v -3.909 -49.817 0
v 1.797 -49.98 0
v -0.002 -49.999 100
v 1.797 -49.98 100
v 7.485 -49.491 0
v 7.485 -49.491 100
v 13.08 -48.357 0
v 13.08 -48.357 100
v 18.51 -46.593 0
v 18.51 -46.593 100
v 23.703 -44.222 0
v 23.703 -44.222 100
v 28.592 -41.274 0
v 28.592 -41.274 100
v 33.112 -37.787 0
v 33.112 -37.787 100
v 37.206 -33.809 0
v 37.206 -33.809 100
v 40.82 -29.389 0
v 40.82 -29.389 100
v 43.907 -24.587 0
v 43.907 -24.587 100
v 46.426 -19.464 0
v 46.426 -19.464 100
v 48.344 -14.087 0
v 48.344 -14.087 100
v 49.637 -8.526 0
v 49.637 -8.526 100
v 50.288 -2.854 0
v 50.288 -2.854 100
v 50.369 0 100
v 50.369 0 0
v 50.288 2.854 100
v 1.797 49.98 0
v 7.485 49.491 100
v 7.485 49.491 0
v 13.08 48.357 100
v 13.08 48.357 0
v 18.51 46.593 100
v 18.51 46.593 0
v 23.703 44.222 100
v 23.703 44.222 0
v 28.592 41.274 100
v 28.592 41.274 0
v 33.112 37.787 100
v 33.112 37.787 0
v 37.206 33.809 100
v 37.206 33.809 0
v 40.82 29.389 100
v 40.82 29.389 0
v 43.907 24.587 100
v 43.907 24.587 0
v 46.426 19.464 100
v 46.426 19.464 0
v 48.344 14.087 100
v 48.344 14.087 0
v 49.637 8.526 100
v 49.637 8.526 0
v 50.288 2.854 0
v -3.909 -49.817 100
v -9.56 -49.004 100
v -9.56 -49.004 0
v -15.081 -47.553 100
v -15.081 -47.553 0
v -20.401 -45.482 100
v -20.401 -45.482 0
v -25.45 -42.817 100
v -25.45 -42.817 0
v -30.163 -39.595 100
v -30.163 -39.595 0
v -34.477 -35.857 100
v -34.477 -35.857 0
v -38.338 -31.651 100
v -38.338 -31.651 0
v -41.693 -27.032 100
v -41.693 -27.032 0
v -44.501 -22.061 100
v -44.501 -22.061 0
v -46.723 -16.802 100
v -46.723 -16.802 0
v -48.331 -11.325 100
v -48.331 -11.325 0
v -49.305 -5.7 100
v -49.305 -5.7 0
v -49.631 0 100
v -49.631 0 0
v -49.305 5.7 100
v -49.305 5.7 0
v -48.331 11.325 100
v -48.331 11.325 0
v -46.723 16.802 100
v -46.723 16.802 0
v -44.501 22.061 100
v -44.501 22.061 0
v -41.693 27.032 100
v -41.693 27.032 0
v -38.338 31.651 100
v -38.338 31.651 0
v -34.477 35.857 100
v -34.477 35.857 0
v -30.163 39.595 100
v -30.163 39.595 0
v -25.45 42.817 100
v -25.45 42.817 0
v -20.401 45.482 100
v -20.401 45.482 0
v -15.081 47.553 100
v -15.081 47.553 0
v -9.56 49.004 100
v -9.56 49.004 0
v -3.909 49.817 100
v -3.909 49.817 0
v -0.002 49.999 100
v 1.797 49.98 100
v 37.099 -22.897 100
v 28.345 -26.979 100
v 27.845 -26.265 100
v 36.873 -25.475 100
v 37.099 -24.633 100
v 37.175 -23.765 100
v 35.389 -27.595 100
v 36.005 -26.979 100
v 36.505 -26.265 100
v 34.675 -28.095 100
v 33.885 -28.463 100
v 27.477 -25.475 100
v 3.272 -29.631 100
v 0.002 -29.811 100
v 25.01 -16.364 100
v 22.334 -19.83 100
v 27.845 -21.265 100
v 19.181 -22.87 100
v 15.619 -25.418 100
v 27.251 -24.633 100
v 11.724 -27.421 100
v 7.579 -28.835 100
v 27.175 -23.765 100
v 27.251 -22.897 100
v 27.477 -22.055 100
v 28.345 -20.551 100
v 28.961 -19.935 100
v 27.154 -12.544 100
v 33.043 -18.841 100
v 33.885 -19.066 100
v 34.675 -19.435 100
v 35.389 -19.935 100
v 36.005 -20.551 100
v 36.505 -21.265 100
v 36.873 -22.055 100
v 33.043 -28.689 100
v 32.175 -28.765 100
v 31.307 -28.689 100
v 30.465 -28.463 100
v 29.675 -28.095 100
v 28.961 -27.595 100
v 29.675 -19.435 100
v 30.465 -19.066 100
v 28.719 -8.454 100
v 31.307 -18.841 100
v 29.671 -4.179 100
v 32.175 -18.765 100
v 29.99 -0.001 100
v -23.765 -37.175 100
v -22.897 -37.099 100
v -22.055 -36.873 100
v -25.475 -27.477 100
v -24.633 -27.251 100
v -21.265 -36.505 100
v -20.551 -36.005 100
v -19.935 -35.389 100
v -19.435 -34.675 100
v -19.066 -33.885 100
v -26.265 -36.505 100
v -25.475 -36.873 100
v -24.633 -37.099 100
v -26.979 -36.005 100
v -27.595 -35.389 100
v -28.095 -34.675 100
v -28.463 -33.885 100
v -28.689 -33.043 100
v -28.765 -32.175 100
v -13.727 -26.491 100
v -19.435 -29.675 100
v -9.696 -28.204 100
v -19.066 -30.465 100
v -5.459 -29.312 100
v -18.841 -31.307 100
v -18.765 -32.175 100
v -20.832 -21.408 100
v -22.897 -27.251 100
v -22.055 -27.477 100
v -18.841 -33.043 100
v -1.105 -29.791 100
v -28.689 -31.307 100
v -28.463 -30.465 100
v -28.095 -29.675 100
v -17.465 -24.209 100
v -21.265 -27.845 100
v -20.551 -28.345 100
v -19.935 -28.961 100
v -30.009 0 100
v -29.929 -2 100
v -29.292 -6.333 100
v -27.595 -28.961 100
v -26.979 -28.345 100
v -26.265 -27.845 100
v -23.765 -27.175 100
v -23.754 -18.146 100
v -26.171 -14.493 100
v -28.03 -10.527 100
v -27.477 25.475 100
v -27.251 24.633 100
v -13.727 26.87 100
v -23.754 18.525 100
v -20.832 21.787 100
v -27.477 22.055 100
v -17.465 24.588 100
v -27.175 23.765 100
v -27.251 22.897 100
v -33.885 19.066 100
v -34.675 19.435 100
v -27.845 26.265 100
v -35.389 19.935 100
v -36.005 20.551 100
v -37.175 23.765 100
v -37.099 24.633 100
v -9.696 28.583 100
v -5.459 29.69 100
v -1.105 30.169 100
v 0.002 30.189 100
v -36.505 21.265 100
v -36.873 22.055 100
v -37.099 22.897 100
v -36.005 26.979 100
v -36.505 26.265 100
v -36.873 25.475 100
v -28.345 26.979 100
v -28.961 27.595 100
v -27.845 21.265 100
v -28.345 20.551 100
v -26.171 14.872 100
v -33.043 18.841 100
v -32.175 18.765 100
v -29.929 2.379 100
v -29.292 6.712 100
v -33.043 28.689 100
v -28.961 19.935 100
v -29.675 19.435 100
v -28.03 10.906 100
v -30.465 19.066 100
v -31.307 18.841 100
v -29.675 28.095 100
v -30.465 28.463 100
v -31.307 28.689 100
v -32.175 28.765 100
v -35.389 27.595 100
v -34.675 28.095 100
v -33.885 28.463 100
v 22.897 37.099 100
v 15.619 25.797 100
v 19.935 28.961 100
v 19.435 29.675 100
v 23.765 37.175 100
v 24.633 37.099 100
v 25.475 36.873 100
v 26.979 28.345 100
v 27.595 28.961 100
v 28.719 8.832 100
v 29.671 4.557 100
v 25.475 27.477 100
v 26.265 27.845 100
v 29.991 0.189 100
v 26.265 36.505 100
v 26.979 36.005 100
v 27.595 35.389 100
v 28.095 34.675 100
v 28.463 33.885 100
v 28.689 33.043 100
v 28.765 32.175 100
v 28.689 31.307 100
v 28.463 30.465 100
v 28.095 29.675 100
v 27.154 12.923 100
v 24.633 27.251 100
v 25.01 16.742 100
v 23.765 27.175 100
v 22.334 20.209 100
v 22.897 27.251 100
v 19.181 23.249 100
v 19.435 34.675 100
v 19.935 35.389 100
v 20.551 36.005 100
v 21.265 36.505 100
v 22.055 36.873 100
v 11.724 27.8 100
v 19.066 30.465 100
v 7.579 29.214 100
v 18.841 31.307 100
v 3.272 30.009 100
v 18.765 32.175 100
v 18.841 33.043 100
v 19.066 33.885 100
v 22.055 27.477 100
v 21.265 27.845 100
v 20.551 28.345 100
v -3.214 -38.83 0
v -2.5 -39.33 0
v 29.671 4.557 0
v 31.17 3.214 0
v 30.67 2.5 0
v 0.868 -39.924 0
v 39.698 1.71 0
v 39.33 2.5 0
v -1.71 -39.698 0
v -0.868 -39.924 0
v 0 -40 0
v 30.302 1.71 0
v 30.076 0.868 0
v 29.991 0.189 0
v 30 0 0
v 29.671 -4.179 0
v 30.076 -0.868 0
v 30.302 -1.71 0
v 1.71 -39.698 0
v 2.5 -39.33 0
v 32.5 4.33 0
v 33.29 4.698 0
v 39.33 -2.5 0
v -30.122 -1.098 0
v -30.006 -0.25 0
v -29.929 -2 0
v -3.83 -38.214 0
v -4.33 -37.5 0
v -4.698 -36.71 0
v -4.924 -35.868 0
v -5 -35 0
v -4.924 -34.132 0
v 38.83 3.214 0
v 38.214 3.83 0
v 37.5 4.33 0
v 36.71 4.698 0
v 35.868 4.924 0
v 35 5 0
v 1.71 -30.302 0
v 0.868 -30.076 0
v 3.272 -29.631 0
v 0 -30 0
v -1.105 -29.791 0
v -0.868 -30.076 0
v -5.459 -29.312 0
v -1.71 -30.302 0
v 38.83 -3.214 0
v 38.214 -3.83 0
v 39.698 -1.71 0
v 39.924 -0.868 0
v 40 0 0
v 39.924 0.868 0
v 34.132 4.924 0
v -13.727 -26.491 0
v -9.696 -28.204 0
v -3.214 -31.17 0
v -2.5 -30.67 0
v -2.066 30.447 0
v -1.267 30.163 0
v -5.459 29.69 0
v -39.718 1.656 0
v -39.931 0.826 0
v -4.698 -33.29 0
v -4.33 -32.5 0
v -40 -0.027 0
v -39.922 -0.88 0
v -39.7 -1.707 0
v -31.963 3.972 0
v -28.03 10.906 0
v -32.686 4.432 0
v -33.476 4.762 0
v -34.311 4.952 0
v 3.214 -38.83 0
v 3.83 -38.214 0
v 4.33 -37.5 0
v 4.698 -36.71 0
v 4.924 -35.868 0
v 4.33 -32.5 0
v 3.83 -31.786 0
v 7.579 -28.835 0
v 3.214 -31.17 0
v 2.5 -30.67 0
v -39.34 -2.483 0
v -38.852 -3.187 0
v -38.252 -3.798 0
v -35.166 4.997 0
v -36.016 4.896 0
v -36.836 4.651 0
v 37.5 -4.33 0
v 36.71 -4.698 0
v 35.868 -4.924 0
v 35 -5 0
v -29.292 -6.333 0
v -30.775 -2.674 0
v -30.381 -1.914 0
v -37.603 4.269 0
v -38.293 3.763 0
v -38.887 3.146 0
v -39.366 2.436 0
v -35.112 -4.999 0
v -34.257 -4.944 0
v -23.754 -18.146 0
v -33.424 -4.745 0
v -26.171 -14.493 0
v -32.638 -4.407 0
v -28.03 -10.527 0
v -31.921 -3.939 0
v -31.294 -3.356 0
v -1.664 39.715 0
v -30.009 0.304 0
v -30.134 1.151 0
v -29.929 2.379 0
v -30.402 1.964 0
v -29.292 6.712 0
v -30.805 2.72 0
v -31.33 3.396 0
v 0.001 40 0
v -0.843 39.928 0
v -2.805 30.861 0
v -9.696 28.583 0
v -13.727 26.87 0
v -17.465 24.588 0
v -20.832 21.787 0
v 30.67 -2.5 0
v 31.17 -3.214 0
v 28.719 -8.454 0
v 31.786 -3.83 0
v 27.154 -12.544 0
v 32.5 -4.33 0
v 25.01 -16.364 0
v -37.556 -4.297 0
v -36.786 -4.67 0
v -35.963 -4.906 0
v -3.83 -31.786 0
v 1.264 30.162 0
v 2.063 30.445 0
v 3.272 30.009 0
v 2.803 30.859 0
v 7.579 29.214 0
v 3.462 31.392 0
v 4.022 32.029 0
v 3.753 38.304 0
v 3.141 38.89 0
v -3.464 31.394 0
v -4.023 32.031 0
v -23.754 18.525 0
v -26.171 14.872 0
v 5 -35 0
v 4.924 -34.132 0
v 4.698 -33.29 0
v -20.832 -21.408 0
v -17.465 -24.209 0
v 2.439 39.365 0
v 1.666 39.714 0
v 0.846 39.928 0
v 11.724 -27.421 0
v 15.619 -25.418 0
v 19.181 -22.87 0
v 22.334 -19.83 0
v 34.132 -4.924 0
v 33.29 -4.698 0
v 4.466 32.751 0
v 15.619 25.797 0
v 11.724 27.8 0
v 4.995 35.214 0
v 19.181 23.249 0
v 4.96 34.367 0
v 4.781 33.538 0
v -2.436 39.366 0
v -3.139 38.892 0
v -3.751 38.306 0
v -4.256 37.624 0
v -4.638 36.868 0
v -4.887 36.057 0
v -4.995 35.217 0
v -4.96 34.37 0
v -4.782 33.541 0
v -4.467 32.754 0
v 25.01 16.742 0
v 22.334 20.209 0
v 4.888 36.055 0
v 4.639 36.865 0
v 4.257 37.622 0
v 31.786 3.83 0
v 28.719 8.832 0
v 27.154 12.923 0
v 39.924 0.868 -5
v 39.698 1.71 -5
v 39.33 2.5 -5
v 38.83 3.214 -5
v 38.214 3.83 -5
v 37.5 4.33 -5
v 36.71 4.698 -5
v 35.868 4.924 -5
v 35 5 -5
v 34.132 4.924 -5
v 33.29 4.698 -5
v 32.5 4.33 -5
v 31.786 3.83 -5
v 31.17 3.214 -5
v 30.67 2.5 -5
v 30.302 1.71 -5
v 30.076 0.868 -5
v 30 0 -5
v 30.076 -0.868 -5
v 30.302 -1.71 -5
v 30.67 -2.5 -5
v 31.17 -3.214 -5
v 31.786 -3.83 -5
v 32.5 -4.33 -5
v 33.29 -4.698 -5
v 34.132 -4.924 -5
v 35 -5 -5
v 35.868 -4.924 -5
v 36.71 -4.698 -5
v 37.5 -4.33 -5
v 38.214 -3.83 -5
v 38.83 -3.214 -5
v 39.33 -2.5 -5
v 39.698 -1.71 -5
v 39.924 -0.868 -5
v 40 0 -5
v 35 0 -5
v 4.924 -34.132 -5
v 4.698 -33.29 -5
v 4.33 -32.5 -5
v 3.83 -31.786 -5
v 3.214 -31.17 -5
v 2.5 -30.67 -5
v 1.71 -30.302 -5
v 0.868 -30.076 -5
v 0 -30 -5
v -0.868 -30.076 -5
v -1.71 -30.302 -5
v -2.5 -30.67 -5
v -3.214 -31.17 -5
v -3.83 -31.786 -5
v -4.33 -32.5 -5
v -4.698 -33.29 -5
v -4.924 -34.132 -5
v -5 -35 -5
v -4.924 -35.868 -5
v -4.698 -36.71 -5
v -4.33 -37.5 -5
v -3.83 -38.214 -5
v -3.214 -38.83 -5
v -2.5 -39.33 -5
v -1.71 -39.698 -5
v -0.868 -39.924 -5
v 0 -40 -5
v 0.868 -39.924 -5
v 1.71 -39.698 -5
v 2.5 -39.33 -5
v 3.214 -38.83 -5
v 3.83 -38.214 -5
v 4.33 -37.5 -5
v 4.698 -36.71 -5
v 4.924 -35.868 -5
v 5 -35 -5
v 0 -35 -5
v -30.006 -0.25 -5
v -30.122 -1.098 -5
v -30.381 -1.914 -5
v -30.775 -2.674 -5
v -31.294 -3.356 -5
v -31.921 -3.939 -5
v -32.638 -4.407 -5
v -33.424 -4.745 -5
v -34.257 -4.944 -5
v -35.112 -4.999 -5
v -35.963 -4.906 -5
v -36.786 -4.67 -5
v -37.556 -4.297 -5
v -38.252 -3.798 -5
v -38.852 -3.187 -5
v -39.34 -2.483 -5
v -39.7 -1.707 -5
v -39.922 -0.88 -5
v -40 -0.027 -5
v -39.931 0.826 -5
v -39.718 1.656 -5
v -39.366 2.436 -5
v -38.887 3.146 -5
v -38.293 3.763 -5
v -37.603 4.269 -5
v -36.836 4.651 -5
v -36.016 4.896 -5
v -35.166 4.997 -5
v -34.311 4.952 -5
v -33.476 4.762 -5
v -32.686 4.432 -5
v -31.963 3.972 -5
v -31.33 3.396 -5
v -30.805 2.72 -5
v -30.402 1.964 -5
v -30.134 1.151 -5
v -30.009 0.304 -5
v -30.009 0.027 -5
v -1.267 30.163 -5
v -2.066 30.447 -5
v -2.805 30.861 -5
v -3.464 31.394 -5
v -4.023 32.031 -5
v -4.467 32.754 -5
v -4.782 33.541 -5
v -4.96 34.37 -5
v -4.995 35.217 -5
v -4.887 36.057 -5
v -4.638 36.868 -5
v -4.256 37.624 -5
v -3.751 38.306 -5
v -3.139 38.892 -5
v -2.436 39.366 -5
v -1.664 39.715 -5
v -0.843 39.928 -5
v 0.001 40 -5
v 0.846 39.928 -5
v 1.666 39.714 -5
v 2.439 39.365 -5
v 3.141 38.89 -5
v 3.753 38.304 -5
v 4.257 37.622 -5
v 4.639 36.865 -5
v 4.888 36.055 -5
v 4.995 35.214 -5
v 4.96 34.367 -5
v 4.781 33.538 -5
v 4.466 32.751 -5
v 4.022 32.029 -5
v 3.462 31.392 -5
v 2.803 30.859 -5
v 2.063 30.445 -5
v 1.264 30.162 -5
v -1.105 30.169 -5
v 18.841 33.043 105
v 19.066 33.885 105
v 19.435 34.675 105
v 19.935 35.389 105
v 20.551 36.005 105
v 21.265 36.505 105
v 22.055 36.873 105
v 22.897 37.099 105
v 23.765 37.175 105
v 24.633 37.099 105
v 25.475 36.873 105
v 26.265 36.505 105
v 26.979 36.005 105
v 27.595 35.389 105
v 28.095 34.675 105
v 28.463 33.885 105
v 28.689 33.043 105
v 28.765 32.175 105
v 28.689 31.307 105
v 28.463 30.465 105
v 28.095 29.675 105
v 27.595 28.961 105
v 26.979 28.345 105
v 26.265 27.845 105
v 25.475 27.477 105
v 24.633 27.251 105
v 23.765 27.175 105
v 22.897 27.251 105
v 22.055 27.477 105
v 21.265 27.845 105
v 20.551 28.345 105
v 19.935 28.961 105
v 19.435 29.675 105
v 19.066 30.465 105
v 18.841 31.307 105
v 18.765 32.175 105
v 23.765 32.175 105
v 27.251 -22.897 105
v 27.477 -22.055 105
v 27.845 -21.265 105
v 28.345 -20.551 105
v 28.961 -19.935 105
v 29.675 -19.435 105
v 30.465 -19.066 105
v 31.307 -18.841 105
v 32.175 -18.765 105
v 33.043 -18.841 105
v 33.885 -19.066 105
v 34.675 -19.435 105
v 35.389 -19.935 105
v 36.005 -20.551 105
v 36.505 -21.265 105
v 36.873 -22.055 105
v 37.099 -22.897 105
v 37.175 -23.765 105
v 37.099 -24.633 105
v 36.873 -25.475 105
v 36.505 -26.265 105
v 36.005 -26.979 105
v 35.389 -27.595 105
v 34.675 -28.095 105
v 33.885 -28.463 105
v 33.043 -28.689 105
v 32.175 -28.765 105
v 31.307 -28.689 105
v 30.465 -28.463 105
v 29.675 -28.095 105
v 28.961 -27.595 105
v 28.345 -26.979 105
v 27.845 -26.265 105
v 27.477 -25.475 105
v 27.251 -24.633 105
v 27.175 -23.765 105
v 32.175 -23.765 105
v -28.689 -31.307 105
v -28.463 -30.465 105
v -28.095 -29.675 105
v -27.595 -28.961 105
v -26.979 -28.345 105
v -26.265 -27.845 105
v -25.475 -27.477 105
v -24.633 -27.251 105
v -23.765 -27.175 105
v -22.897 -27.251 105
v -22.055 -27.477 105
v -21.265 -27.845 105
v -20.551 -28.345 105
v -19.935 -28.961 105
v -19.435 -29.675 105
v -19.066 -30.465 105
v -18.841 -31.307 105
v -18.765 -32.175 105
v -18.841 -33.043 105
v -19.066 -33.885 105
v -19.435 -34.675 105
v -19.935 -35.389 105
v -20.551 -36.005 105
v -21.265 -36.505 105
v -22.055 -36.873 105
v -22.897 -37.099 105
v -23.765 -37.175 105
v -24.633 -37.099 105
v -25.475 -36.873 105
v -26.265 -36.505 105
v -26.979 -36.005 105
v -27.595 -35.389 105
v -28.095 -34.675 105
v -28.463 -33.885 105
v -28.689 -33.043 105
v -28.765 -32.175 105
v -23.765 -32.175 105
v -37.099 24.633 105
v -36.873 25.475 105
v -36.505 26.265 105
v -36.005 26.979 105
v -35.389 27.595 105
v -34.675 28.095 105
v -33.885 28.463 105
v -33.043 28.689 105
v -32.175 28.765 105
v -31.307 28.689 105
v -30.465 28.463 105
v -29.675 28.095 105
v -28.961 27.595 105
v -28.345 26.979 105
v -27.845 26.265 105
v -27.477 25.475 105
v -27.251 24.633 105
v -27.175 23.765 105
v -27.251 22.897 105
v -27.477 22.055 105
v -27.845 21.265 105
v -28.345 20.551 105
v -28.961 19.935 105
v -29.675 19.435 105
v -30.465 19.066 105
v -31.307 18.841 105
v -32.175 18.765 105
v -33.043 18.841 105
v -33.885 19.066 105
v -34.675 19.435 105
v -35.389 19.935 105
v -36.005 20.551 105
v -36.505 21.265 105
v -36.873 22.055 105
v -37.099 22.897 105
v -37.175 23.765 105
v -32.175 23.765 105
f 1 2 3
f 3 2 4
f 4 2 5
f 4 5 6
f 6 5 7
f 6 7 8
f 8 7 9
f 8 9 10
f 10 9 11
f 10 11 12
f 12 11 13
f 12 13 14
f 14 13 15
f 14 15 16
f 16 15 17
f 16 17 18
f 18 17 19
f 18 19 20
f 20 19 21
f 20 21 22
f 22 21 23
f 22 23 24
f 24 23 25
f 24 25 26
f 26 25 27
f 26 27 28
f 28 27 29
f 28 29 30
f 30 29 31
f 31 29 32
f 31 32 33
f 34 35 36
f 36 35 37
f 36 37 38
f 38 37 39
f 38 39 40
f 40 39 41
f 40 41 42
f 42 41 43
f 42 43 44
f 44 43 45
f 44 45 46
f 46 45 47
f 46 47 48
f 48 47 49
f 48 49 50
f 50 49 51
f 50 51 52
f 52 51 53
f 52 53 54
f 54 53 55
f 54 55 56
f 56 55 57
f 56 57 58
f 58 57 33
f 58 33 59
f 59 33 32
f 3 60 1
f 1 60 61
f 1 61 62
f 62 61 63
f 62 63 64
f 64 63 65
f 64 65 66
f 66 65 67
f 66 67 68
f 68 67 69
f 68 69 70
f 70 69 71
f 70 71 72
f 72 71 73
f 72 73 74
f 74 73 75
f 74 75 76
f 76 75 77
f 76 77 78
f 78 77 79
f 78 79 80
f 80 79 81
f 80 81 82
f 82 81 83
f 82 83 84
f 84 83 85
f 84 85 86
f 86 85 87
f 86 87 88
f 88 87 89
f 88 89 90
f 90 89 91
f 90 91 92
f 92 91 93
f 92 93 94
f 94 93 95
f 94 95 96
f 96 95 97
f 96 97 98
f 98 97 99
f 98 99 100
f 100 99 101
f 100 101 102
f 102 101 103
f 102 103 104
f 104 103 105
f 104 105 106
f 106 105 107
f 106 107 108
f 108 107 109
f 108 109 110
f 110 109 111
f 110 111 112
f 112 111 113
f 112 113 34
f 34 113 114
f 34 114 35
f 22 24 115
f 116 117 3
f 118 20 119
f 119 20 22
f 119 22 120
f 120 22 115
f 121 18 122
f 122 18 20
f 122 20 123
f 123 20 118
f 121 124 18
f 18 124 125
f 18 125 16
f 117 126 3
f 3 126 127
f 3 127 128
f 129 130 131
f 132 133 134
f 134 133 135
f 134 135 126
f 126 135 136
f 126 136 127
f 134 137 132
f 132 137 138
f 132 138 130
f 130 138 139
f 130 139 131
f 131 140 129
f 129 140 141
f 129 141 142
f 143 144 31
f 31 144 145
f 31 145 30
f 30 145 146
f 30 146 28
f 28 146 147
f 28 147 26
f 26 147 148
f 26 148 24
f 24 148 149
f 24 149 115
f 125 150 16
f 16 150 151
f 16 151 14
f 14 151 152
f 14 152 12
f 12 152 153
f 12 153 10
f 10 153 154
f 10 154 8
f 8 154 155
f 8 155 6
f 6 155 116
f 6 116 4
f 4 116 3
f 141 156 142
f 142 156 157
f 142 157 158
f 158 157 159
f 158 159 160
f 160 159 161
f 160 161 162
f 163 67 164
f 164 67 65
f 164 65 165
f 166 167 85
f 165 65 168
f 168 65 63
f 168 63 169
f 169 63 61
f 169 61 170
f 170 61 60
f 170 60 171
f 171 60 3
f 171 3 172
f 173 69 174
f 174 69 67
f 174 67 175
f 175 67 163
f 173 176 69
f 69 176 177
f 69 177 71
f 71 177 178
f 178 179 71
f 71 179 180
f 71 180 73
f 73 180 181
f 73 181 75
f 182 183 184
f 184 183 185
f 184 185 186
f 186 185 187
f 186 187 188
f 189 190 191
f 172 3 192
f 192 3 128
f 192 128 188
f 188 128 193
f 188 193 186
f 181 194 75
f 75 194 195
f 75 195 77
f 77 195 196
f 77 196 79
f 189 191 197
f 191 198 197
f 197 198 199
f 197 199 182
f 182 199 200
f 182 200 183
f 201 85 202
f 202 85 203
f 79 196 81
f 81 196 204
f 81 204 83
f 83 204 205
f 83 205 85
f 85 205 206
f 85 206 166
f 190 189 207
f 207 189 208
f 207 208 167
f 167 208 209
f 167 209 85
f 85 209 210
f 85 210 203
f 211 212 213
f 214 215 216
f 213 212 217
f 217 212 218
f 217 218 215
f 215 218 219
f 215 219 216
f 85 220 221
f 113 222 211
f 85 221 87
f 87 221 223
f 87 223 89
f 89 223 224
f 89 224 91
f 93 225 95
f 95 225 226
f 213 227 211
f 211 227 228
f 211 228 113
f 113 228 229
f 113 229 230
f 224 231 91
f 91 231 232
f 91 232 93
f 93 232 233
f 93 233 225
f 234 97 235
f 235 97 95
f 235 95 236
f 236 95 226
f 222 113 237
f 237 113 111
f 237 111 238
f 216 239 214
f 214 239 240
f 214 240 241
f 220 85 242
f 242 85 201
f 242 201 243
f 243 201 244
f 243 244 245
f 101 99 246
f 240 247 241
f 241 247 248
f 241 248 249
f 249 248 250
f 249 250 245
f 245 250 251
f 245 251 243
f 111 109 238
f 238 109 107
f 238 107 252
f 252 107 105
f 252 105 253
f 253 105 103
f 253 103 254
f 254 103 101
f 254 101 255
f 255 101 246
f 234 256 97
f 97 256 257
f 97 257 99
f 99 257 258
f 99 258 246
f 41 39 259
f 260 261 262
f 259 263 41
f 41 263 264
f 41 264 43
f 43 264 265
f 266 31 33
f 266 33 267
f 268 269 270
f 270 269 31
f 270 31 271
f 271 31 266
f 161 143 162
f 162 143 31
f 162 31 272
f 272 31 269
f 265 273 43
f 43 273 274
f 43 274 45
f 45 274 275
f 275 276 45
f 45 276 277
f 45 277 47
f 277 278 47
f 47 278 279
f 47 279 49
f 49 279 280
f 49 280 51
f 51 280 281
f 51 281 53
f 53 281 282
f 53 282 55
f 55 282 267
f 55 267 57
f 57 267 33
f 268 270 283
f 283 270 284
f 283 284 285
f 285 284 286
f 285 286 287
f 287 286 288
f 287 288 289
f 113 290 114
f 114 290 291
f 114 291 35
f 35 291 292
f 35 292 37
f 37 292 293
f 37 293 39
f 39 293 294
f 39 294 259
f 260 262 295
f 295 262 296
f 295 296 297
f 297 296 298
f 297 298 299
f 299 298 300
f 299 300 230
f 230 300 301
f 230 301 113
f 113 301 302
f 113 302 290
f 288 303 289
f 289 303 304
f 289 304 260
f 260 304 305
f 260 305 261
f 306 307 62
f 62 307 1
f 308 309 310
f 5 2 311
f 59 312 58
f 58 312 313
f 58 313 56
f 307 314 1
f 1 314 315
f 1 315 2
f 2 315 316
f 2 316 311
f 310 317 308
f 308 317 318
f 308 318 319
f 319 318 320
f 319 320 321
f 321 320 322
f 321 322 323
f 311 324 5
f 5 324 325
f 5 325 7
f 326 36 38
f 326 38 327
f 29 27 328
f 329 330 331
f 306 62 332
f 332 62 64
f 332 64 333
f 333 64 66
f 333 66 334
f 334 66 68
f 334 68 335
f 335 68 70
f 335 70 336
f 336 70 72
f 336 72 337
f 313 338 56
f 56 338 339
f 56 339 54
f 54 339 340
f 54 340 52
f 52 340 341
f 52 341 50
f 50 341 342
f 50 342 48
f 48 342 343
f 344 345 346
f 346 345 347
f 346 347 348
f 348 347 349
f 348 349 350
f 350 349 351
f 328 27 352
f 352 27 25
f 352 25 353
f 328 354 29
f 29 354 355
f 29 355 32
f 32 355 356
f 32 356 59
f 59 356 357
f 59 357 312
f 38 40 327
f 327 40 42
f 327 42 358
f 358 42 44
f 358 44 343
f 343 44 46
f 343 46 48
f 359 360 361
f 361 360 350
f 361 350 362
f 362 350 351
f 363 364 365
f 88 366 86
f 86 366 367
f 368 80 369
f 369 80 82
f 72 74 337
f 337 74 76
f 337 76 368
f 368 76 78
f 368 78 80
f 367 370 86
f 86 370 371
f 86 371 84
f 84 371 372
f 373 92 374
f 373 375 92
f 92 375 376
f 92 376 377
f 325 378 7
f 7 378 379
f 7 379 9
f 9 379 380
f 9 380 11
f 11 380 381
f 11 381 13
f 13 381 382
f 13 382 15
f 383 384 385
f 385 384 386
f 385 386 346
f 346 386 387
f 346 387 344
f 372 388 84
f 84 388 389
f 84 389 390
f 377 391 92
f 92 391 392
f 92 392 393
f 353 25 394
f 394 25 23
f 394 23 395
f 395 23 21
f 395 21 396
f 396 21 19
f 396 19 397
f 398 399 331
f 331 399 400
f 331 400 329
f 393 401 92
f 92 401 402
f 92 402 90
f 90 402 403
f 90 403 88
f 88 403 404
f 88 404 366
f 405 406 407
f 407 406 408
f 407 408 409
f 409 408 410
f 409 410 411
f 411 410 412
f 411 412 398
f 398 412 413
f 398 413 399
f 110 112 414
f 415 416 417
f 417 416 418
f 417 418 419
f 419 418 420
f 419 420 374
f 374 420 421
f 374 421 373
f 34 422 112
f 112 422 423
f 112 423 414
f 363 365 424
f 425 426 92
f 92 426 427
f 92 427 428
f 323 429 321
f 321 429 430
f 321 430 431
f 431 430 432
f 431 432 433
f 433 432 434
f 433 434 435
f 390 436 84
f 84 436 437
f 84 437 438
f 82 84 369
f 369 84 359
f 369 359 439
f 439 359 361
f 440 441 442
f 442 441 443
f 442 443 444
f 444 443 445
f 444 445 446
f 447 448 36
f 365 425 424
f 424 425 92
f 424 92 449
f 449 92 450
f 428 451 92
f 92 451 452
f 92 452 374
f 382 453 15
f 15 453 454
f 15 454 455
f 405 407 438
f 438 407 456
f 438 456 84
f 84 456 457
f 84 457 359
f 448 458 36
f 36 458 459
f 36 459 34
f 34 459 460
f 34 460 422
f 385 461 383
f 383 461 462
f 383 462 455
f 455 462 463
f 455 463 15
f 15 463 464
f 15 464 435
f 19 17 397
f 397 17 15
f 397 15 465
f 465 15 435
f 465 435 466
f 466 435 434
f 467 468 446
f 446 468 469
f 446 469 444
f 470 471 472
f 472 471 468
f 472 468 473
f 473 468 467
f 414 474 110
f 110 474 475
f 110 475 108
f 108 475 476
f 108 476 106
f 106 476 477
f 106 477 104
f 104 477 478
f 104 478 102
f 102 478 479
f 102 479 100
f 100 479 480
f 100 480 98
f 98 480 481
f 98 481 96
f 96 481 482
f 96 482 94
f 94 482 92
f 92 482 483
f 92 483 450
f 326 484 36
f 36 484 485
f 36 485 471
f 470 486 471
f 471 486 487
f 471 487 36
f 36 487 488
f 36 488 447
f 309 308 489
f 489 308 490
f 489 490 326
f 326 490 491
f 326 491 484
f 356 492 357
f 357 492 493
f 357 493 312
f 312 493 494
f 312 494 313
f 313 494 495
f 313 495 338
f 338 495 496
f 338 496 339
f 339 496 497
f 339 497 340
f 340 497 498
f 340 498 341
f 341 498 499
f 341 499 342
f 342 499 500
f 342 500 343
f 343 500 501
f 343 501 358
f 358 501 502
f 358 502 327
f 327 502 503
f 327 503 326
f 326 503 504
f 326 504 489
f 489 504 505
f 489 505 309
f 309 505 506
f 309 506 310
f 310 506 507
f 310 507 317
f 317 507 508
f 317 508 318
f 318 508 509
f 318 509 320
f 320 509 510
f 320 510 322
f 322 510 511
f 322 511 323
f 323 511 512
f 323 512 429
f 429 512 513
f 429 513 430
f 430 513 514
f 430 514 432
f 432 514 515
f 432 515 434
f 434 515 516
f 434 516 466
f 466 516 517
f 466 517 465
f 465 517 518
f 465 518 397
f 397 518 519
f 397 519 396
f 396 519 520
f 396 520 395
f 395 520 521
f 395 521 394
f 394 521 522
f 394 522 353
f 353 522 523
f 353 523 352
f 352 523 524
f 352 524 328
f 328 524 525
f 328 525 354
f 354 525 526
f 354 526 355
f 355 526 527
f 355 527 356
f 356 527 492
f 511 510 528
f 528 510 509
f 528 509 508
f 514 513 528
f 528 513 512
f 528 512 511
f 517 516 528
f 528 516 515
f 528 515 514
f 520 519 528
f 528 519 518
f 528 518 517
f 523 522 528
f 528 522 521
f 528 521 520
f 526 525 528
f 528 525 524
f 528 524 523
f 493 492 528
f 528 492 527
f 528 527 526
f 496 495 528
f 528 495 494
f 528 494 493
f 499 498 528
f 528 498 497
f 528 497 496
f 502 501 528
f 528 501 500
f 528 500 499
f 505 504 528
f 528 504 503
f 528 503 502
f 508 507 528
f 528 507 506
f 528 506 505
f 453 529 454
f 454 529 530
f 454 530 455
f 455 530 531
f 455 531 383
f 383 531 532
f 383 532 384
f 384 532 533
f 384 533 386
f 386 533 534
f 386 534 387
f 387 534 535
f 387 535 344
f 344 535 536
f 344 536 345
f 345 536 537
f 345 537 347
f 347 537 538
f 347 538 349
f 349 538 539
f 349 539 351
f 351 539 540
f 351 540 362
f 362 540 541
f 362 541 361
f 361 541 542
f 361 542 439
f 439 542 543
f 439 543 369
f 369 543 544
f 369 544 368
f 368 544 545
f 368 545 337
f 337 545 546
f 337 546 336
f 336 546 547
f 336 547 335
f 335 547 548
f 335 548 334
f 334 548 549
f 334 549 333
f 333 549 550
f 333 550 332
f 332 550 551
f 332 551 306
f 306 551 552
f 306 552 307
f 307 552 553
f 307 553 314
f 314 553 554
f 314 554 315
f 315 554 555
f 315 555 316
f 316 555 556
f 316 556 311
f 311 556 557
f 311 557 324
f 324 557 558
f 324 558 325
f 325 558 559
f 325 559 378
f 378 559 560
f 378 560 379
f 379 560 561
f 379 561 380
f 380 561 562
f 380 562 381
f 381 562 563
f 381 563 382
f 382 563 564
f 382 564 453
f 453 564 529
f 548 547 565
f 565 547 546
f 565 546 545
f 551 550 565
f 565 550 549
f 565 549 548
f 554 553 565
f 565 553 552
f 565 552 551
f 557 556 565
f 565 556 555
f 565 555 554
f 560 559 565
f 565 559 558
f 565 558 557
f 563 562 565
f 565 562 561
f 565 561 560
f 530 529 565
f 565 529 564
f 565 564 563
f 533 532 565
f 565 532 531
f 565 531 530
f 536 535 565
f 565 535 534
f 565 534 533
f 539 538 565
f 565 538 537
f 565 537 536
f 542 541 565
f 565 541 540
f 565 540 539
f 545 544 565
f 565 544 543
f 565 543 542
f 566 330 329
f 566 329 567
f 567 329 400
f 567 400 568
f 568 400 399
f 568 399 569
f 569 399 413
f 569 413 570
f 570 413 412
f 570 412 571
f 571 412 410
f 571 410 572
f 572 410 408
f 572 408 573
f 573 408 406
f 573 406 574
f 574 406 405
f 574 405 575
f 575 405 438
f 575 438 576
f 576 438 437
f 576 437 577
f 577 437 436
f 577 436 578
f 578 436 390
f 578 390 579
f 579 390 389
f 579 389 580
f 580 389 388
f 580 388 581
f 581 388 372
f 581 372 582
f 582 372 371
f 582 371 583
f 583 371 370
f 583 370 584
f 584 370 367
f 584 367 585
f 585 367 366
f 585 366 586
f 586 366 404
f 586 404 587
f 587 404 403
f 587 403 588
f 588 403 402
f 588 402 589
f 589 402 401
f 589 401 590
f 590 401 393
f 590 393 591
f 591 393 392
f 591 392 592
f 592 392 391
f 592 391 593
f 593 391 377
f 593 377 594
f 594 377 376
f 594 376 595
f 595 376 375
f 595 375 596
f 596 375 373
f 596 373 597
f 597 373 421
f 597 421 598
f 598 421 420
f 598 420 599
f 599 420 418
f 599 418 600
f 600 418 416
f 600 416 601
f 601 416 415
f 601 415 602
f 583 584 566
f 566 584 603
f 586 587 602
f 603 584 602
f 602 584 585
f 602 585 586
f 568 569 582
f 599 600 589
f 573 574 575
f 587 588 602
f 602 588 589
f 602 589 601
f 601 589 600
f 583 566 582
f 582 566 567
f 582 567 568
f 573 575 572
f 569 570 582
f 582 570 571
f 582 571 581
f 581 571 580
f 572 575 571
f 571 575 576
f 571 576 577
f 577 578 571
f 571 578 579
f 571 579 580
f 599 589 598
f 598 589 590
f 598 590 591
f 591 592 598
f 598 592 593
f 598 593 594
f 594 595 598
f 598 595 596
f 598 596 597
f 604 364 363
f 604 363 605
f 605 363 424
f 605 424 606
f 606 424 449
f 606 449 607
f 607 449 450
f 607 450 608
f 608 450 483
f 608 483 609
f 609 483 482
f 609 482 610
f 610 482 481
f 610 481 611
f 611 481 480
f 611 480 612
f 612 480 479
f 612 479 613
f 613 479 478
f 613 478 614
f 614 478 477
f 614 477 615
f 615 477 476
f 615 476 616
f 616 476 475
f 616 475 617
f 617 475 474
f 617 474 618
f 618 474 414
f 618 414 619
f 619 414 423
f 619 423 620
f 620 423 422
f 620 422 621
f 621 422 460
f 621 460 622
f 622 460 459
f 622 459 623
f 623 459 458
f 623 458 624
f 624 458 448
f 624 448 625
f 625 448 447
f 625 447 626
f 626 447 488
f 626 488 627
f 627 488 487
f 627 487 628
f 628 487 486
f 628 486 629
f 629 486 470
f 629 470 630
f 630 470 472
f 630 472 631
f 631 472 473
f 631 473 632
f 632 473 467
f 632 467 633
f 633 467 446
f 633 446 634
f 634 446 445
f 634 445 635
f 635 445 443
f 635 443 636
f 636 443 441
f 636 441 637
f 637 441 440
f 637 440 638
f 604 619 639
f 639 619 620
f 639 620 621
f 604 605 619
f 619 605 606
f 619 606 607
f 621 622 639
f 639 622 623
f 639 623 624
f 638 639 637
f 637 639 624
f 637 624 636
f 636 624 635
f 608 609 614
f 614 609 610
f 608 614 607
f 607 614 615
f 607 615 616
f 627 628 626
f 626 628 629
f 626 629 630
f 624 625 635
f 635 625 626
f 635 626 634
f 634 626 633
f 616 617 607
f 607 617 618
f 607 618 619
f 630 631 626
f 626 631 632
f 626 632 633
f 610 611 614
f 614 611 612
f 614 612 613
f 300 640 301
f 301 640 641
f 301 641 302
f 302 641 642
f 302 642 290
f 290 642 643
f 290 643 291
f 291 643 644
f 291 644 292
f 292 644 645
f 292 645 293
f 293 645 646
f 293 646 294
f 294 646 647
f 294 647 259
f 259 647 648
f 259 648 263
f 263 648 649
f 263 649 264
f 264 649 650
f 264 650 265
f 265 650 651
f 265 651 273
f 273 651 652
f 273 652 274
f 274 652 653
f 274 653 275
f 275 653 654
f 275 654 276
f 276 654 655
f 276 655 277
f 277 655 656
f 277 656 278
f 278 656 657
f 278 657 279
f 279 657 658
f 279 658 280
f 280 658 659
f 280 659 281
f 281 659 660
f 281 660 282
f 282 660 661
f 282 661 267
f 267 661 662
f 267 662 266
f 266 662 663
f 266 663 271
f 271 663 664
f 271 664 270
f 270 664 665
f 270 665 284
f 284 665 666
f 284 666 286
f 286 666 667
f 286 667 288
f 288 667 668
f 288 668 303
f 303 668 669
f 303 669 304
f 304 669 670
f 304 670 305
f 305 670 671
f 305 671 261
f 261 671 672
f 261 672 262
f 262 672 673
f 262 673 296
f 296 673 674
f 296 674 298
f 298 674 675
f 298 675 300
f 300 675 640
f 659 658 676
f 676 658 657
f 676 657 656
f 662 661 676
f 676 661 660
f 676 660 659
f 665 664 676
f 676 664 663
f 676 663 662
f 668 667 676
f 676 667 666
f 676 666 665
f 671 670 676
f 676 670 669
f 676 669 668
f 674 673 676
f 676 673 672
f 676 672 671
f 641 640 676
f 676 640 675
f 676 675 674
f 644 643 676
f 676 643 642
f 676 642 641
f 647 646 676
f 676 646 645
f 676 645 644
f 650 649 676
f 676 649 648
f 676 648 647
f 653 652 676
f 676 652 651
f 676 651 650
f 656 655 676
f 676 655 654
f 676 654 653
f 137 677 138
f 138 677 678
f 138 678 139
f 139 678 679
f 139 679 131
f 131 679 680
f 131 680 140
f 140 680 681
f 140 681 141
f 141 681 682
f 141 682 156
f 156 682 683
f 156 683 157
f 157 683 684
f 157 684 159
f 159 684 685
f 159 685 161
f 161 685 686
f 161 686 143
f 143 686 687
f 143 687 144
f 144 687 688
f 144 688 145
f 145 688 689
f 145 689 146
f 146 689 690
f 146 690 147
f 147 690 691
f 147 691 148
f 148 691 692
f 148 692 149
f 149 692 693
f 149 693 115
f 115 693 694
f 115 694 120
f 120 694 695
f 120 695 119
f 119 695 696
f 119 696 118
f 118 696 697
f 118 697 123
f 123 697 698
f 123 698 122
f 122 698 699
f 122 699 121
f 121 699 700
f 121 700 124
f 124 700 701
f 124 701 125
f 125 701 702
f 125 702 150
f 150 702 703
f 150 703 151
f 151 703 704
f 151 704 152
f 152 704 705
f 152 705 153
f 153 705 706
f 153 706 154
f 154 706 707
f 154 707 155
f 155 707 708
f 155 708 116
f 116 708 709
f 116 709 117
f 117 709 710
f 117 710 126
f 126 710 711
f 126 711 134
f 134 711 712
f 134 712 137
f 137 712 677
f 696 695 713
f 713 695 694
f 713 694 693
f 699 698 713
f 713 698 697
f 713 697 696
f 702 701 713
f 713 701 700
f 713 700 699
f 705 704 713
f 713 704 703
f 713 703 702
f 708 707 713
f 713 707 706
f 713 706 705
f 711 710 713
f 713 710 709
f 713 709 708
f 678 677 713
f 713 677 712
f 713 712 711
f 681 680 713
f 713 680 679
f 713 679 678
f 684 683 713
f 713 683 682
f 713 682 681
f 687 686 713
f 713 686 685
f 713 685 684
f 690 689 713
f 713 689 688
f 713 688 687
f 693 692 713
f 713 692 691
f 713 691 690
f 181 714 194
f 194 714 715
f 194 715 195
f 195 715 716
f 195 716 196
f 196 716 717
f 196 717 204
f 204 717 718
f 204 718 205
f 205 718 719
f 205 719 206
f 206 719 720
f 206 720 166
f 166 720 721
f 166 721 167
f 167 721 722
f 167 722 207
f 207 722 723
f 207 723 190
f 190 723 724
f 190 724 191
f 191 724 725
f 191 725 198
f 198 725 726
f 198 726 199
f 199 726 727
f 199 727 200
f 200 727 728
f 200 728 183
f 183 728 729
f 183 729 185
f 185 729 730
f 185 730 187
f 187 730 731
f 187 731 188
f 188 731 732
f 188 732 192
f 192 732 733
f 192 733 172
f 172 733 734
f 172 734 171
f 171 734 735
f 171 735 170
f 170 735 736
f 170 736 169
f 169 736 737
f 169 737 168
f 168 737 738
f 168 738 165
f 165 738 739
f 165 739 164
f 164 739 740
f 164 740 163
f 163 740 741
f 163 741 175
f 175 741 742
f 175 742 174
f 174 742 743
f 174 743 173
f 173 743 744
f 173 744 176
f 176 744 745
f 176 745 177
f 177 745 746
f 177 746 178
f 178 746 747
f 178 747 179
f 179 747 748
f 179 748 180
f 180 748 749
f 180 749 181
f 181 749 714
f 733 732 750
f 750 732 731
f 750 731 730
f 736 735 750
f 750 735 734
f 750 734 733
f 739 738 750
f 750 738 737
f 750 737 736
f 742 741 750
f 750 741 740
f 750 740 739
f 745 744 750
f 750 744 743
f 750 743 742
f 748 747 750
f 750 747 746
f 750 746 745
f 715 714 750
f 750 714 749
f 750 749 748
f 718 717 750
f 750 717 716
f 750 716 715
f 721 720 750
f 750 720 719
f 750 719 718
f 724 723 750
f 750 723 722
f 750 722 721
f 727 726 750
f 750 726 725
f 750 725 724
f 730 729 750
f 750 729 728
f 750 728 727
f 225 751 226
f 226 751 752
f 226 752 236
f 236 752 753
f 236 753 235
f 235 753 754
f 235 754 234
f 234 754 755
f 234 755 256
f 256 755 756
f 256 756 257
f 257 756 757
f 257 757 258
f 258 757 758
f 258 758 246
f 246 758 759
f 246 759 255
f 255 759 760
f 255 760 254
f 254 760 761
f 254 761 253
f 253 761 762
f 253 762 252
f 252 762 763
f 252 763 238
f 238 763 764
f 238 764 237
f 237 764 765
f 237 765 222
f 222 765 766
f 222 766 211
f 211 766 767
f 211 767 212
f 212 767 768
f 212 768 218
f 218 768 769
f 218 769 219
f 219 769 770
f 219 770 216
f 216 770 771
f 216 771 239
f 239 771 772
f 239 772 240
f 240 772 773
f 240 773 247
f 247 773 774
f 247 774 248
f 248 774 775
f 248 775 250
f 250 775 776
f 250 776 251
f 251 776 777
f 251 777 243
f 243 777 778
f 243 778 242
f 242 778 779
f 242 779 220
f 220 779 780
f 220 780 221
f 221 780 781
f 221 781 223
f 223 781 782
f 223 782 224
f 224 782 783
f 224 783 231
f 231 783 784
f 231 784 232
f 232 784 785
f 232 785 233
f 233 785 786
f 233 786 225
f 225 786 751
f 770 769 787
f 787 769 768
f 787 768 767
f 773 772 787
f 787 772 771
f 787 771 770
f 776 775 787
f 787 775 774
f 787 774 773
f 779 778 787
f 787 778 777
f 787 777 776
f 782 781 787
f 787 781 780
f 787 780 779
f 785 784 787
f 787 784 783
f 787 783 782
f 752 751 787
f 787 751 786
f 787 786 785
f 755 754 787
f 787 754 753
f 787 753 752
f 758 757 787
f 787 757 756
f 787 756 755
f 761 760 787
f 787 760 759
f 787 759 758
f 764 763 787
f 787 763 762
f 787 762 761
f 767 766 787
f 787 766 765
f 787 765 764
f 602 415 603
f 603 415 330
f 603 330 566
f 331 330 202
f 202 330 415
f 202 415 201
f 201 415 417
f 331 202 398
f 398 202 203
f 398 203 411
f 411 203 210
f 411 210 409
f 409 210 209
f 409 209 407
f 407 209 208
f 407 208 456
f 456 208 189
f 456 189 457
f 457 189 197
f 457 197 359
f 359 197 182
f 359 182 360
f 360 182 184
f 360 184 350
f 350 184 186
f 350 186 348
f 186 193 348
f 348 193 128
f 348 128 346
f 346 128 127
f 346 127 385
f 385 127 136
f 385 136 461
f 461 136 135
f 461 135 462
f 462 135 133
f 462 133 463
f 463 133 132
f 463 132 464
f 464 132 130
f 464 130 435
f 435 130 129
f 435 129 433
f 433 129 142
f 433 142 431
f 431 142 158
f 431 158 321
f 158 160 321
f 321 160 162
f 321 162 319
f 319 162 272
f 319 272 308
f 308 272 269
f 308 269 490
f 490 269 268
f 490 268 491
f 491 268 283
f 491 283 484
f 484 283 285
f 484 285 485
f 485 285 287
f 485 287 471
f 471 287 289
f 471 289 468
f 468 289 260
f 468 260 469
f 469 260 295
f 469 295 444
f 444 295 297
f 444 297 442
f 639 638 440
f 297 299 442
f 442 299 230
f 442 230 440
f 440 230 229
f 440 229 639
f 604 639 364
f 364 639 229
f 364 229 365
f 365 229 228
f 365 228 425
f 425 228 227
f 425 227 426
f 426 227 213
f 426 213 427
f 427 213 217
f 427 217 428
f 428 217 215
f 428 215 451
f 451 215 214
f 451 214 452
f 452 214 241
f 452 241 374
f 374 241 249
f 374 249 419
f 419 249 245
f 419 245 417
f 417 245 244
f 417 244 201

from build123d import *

# Parameters (mm, degrees)
SKETCH1_R           = 50
BOSS_EXTRUDE1_DEPTH = 100
SKETCH3_R           = 5
BOSS_EXTRUDE3_DEPTH = 5
SKETCH4_R           = 5
BOSS_EXTRUDE4_DEPTH = 5
SKETCH5_R           = 30
CUT_EXTRUDE1_DEPTH  = 127.736251111


with BuildPart() as part:
    # Sketch1 → Boss-Extrude1 (new body)
    with BuildSketch(Plane.XY):
        with Locations((0.369408828, 0)):
            Circle(SKETCH1_R)
    extrude(amount=BOSS_EXTRUDE1_DEPTH)

    # Sketch3 → Boss-Extrude3 (add)
    with BuildSketch(Plane(origin=(0, 0, 0), x_dir=(-1, 0, 0), z_dir=(0, 0, -1))):
        with Locations(Location((0, 35, 0), (0, 0, 180))):
            Circle(SKETCH3_R)
        with Locations(Location((35, 0, 0), (0, 0, 180))):
            Circle(SKETCH3_R)
        with Locations(Location((0, -35, 0), (0, 0, 180))):
            Circle(SKETCH3_R)
        with Locations(Location((-35, 0, 0), (0, 0, 180))):
            Circle(SKETCH3_R)
    extrude(amount=BOSS_EXTRUDE3_DEPTH)

    # Sketch4 → Boss-Extrude4 (add)
    with BuildSketch(Plane.XY.offset(100)):
        with Locations((23.764833651, 32.175031958)):
            Circle(SKETCH4_R)
        with Locations((32.175031958, -23.764833651)):
            Circle(SKETCH4_R)
        with Locations((-23.764833651, -32.175031958)):
            Circle(SKETCH4_R)
        with Locations((-32.175031958, 23.764833651)):
            Circle(SKETCH4_R)
    extrude(amount=BOSS_EXTRUDE4_DEPTH)

    # Sketch5 → Cut-Extrude1 (cut, through all)
    with BuildSketch(Plane.XY.offset(100)):
        with Locations((-0.009474688, 0.189441758)):
            Circle(SKETCH5_R)
    extrude(amount=-CUT_EXTRUDE1_DEPTH, mode=Mode.SUBTRACT)


solid = part.part
